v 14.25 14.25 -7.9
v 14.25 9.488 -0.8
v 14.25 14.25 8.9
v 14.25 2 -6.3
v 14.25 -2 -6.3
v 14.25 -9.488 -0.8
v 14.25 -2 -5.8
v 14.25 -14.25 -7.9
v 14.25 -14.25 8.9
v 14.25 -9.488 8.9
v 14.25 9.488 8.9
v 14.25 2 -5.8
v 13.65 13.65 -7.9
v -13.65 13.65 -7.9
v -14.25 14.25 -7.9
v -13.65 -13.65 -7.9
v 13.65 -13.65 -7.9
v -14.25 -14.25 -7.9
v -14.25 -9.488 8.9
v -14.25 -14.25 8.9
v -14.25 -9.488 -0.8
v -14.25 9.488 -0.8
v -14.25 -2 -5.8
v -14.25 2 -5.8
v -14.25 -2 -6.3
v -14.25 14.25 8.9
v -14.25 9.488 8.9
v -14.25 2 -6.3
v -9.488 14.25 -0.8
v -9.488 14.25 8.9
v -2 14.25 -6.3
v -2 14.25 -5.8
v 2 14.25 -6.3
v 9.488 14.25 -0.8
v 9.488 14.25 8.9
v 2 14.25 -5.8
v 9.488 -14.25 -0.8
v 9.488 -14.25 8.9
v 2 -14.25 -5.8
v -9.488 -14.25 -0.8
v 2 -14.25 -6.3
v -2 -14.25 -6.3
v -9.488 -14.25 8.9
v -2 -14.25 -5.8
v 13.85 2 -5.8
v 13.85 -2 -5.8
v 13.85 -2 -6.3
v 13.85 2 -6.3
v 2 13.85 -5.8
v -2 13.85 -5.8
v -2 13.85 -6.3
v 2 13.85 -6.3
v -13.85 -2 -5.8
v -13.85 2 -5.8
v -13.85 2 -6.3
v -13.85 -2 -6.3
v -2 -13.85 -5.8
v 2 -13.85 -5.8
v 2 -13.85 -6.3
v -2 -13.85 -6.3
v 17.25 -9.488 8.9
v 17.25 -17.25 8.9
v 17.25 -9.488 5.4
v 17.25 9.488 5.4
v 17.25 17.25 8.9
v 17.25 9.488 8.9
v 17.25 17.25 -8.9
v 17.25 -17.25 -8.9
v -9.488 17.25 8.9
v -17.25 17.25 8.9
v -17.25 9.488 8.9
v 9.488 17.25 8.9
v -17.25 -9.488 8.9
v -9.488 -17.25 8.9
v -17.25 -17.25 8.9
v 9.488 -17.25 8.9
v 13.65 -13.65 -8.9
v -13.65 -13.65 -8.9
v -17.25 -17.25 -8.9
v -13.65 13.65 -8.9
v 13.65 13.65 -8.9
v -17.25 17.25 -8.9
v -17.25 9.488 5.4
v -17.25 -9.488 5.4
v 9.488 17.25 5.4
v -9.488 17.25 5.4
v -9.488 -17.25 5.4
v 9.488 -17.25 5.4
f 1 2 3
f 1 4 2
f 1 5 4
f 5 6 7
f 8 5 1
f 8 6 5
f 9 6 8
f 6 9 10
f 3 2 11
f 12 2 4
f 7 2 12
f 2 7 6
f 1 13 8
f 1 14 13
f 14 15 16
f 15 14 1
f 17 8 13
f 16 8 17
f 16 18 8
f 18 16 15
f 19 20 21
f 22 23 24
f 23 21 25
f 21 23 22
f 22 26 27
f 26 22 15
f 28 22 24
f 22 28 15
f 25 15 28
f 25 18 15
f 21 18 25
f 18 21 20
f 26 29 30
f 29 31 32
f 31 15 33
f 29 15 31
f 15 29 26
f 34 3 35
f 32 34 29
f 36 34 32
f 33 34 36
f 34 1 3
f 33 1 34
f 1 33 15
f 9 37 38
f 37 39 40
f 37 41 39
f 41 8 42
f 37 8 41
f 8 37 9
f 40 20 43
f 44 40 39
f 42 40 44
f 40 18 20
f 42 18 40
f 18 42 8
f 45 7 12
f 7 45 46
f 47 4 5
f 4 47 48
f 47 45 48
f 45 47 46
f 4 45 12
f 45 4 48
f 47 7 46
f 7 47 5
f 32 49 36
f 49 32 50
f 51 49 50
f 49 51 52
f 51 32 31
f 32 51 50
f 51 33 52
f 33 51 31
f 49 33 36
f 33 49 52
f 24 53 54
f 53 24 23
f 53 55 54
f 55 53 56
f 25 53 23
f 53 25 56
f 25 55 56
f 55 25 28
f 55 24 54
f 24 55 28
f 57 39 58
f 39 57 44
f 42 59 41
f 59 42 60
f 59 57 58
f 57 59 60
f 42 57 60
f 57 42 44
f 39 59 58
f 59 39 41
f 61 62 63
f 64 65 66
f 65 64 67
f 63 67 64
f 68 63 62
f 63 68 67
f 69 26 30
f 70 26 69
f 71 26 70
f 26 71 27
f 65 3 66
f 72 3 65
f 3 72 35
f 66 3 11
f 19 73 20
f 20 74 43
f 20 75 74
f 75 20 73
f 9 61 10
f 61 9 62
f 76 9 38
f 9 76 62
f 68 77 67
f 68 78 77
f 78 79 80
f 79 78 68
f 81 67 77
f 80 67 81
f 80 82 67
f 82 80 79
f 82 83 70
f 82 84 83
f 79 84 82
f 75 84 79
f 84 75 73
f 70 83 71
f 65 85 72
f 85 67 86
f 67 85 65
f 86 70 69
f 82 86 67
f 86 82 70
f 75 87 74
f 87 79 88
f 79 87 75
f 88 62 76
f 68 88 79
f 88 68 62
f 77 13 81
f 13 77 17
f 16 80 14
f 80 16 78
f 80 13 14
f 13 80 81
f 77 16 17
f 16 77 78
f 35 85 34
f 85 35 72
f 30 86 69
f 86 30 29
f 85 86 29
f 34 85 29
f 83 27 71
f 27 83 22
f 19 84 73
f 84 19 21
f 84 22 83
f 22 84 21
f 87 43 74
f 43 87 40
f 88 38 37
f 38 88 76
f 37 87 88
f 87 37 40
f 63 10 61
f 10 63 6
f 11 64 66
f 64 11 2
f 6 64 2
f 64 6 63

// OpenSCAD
// file: meta.scad
deviceFudge=0.5;//mm, fudge factor to account for printing inaccuracy, shrinkage
PCBThickness=1.6; //mm
pinRecepticalTop=5.5;//mm above pcb that the pin receptical extends
pinsHeight=pinRecepticalTop+4.2+2;//mm above pcb, fully extended
maxSubstrateThickness=3;//mm
wallT=3;//mm, wall thickness
PCBShelfW=0.6;//mm, the pcb sits on this
belowPBC=1;//mm extension below PCB
crownFraction=0.55;//fraction of each side length to subtract to make extension corners

capT = 5; //mm cap thickness

solidHeight=pinsHeight;//mm above pcb for solid wall
crownHeight=maxSubstrateThickness+0.5;//mm, corners extension above pin ends
totalHeight=belowPBC+PCBThickness+solidHeight+crownHeight;

module base ( xyDev ) {
    vDeviceDim=xyDev+deviceFudge;
    xyLen=vDeviceDim+wallT*2;
    difference(){
        cube([xyLen,xyLen,totalHeight],center = true);
        difference(){
            translate([0,0,belowPBC]) cube([vDeviceDim,vDeviceDim,totalHeight],center = true);
            chunk_width = 4;
            chunk_outdent = 0.4;
            chunk_height = 0.5;
            //these parts clip in the PCB
            translate([vDeviceDim/2-chunk_outdent,-chunk_width/2,-totalHeight/2+belowPBC+PCBThickness]) cube([xyLen,chunk_width,chunk_height],center = false);
            rotate([0,0,90]) translate([vDeviceDim/2-chunk_outdent,-chunk_width/2,-totalHeight/2+belowPBC+PCBThickness]) cube([xyLen,chunk_width,chunk_height],center = false);
            rotate([0,0,180]) translate([vDeviceDim/2-chunk_outdent,-chunk_width/2,-totalHeight/2+belowPBC+PCBThickness]) cube([xyLen,chunk_width,chunk_height],center = false);
            rotate([0,0,270]) translate([vDeviceDim/2-chunk_outdent,-chunk_width/2,-totalHeight/2+belowPBC+PCBThickness]) cube([xyLen,chunk_width,chunk_height],center = false);
            
        }
        cube([vDeviceDim-2*PCBShelfW,vDeviceDim-2*PCBShelfW,totalHeight+1],center = true);
        
        translate([0,xyLen/2,totalHeight/2+(crownHeight+1)/2-crownHeight]) cube([xyLen*crownFraction,xyLen,crownHeight+1],center = true);
        rotate([0,0,180]) translate([-xyLen*crownFraction/2,-xyLen/2,totalHeight/2-crownHeight]) rotate([0,90,0])  linear_extrude(height=xyLen*crownFraction) polygon([[0,0],[0,wallT],[(pinsHeight-pinRecepticalTop),wallT]]);
        
        rotate([0,0,90]) translate([0,xyLen/2,totalHeight/2+(crownHeight+1)/2-crownHeight]) cube([xyLen*crownFraction,xyLen,crownHeight+1],center = true);
        rotate([0,0,270]) translate([-xyLen*crownFraction/2,-xyLen/2,totalHeight/2-crownHeight]) rotate([0,90,0])  linear_extrude(height=xyLen*crownFraction) polygon([[0,0],[0,wallT],[(pinsHeight-pinRecepticalTop),wallT]]);
        
        rotate([0,0,180]) translate([0,xyLen/2,totalHeight/2+(crownHeight+1)/2-crownHeight]) cube([xyLen*crownFraction,xyLen,crownHeight+1],center = true);
        translate([-xyLen*crownFraction/2,-xyLen/2,totalHeight/2-crownHeight]) rotate([0,90,0])  linear_extrude(height=xyLen*crownFraction) polygon([[0,0],[0,wallT],[(pinsHeight-pinRecepticalTop),wallT]]);
        
        rotate([0,0,270]) translate([0,xyLen/2,totalHeight/2+(crownHeight+1)/2-crownHeight]) cube([xyLen*crownFraction,xyLen,crownHeight+1],center = true);
        rotate([0,0,90]) translate([-xyLen*crownFraction/2,-xyLen/2,totalHeight/2-crownHeight]) rotate([0,90,0])  linear_extrude(height=xyLen*crownFraction) polygon([[0,0],[0,wallT],[(pinsHeight-pinRecepticalTop),wallT]]);
    }
}
// main file
include <meta.scad>;

deviceDim=28; //mm, x,y dimension of substrate, pcb, MRG
//deviceDim=30; //mm, x,y dimension of substrate, pcb
//deviceDim=25; //mm, x,y dimension of substrate, pcb, DBG
//deviceDim=25.146; //mm, x,y dimension of substrate, pcb, MIT

base(deviceDim);
